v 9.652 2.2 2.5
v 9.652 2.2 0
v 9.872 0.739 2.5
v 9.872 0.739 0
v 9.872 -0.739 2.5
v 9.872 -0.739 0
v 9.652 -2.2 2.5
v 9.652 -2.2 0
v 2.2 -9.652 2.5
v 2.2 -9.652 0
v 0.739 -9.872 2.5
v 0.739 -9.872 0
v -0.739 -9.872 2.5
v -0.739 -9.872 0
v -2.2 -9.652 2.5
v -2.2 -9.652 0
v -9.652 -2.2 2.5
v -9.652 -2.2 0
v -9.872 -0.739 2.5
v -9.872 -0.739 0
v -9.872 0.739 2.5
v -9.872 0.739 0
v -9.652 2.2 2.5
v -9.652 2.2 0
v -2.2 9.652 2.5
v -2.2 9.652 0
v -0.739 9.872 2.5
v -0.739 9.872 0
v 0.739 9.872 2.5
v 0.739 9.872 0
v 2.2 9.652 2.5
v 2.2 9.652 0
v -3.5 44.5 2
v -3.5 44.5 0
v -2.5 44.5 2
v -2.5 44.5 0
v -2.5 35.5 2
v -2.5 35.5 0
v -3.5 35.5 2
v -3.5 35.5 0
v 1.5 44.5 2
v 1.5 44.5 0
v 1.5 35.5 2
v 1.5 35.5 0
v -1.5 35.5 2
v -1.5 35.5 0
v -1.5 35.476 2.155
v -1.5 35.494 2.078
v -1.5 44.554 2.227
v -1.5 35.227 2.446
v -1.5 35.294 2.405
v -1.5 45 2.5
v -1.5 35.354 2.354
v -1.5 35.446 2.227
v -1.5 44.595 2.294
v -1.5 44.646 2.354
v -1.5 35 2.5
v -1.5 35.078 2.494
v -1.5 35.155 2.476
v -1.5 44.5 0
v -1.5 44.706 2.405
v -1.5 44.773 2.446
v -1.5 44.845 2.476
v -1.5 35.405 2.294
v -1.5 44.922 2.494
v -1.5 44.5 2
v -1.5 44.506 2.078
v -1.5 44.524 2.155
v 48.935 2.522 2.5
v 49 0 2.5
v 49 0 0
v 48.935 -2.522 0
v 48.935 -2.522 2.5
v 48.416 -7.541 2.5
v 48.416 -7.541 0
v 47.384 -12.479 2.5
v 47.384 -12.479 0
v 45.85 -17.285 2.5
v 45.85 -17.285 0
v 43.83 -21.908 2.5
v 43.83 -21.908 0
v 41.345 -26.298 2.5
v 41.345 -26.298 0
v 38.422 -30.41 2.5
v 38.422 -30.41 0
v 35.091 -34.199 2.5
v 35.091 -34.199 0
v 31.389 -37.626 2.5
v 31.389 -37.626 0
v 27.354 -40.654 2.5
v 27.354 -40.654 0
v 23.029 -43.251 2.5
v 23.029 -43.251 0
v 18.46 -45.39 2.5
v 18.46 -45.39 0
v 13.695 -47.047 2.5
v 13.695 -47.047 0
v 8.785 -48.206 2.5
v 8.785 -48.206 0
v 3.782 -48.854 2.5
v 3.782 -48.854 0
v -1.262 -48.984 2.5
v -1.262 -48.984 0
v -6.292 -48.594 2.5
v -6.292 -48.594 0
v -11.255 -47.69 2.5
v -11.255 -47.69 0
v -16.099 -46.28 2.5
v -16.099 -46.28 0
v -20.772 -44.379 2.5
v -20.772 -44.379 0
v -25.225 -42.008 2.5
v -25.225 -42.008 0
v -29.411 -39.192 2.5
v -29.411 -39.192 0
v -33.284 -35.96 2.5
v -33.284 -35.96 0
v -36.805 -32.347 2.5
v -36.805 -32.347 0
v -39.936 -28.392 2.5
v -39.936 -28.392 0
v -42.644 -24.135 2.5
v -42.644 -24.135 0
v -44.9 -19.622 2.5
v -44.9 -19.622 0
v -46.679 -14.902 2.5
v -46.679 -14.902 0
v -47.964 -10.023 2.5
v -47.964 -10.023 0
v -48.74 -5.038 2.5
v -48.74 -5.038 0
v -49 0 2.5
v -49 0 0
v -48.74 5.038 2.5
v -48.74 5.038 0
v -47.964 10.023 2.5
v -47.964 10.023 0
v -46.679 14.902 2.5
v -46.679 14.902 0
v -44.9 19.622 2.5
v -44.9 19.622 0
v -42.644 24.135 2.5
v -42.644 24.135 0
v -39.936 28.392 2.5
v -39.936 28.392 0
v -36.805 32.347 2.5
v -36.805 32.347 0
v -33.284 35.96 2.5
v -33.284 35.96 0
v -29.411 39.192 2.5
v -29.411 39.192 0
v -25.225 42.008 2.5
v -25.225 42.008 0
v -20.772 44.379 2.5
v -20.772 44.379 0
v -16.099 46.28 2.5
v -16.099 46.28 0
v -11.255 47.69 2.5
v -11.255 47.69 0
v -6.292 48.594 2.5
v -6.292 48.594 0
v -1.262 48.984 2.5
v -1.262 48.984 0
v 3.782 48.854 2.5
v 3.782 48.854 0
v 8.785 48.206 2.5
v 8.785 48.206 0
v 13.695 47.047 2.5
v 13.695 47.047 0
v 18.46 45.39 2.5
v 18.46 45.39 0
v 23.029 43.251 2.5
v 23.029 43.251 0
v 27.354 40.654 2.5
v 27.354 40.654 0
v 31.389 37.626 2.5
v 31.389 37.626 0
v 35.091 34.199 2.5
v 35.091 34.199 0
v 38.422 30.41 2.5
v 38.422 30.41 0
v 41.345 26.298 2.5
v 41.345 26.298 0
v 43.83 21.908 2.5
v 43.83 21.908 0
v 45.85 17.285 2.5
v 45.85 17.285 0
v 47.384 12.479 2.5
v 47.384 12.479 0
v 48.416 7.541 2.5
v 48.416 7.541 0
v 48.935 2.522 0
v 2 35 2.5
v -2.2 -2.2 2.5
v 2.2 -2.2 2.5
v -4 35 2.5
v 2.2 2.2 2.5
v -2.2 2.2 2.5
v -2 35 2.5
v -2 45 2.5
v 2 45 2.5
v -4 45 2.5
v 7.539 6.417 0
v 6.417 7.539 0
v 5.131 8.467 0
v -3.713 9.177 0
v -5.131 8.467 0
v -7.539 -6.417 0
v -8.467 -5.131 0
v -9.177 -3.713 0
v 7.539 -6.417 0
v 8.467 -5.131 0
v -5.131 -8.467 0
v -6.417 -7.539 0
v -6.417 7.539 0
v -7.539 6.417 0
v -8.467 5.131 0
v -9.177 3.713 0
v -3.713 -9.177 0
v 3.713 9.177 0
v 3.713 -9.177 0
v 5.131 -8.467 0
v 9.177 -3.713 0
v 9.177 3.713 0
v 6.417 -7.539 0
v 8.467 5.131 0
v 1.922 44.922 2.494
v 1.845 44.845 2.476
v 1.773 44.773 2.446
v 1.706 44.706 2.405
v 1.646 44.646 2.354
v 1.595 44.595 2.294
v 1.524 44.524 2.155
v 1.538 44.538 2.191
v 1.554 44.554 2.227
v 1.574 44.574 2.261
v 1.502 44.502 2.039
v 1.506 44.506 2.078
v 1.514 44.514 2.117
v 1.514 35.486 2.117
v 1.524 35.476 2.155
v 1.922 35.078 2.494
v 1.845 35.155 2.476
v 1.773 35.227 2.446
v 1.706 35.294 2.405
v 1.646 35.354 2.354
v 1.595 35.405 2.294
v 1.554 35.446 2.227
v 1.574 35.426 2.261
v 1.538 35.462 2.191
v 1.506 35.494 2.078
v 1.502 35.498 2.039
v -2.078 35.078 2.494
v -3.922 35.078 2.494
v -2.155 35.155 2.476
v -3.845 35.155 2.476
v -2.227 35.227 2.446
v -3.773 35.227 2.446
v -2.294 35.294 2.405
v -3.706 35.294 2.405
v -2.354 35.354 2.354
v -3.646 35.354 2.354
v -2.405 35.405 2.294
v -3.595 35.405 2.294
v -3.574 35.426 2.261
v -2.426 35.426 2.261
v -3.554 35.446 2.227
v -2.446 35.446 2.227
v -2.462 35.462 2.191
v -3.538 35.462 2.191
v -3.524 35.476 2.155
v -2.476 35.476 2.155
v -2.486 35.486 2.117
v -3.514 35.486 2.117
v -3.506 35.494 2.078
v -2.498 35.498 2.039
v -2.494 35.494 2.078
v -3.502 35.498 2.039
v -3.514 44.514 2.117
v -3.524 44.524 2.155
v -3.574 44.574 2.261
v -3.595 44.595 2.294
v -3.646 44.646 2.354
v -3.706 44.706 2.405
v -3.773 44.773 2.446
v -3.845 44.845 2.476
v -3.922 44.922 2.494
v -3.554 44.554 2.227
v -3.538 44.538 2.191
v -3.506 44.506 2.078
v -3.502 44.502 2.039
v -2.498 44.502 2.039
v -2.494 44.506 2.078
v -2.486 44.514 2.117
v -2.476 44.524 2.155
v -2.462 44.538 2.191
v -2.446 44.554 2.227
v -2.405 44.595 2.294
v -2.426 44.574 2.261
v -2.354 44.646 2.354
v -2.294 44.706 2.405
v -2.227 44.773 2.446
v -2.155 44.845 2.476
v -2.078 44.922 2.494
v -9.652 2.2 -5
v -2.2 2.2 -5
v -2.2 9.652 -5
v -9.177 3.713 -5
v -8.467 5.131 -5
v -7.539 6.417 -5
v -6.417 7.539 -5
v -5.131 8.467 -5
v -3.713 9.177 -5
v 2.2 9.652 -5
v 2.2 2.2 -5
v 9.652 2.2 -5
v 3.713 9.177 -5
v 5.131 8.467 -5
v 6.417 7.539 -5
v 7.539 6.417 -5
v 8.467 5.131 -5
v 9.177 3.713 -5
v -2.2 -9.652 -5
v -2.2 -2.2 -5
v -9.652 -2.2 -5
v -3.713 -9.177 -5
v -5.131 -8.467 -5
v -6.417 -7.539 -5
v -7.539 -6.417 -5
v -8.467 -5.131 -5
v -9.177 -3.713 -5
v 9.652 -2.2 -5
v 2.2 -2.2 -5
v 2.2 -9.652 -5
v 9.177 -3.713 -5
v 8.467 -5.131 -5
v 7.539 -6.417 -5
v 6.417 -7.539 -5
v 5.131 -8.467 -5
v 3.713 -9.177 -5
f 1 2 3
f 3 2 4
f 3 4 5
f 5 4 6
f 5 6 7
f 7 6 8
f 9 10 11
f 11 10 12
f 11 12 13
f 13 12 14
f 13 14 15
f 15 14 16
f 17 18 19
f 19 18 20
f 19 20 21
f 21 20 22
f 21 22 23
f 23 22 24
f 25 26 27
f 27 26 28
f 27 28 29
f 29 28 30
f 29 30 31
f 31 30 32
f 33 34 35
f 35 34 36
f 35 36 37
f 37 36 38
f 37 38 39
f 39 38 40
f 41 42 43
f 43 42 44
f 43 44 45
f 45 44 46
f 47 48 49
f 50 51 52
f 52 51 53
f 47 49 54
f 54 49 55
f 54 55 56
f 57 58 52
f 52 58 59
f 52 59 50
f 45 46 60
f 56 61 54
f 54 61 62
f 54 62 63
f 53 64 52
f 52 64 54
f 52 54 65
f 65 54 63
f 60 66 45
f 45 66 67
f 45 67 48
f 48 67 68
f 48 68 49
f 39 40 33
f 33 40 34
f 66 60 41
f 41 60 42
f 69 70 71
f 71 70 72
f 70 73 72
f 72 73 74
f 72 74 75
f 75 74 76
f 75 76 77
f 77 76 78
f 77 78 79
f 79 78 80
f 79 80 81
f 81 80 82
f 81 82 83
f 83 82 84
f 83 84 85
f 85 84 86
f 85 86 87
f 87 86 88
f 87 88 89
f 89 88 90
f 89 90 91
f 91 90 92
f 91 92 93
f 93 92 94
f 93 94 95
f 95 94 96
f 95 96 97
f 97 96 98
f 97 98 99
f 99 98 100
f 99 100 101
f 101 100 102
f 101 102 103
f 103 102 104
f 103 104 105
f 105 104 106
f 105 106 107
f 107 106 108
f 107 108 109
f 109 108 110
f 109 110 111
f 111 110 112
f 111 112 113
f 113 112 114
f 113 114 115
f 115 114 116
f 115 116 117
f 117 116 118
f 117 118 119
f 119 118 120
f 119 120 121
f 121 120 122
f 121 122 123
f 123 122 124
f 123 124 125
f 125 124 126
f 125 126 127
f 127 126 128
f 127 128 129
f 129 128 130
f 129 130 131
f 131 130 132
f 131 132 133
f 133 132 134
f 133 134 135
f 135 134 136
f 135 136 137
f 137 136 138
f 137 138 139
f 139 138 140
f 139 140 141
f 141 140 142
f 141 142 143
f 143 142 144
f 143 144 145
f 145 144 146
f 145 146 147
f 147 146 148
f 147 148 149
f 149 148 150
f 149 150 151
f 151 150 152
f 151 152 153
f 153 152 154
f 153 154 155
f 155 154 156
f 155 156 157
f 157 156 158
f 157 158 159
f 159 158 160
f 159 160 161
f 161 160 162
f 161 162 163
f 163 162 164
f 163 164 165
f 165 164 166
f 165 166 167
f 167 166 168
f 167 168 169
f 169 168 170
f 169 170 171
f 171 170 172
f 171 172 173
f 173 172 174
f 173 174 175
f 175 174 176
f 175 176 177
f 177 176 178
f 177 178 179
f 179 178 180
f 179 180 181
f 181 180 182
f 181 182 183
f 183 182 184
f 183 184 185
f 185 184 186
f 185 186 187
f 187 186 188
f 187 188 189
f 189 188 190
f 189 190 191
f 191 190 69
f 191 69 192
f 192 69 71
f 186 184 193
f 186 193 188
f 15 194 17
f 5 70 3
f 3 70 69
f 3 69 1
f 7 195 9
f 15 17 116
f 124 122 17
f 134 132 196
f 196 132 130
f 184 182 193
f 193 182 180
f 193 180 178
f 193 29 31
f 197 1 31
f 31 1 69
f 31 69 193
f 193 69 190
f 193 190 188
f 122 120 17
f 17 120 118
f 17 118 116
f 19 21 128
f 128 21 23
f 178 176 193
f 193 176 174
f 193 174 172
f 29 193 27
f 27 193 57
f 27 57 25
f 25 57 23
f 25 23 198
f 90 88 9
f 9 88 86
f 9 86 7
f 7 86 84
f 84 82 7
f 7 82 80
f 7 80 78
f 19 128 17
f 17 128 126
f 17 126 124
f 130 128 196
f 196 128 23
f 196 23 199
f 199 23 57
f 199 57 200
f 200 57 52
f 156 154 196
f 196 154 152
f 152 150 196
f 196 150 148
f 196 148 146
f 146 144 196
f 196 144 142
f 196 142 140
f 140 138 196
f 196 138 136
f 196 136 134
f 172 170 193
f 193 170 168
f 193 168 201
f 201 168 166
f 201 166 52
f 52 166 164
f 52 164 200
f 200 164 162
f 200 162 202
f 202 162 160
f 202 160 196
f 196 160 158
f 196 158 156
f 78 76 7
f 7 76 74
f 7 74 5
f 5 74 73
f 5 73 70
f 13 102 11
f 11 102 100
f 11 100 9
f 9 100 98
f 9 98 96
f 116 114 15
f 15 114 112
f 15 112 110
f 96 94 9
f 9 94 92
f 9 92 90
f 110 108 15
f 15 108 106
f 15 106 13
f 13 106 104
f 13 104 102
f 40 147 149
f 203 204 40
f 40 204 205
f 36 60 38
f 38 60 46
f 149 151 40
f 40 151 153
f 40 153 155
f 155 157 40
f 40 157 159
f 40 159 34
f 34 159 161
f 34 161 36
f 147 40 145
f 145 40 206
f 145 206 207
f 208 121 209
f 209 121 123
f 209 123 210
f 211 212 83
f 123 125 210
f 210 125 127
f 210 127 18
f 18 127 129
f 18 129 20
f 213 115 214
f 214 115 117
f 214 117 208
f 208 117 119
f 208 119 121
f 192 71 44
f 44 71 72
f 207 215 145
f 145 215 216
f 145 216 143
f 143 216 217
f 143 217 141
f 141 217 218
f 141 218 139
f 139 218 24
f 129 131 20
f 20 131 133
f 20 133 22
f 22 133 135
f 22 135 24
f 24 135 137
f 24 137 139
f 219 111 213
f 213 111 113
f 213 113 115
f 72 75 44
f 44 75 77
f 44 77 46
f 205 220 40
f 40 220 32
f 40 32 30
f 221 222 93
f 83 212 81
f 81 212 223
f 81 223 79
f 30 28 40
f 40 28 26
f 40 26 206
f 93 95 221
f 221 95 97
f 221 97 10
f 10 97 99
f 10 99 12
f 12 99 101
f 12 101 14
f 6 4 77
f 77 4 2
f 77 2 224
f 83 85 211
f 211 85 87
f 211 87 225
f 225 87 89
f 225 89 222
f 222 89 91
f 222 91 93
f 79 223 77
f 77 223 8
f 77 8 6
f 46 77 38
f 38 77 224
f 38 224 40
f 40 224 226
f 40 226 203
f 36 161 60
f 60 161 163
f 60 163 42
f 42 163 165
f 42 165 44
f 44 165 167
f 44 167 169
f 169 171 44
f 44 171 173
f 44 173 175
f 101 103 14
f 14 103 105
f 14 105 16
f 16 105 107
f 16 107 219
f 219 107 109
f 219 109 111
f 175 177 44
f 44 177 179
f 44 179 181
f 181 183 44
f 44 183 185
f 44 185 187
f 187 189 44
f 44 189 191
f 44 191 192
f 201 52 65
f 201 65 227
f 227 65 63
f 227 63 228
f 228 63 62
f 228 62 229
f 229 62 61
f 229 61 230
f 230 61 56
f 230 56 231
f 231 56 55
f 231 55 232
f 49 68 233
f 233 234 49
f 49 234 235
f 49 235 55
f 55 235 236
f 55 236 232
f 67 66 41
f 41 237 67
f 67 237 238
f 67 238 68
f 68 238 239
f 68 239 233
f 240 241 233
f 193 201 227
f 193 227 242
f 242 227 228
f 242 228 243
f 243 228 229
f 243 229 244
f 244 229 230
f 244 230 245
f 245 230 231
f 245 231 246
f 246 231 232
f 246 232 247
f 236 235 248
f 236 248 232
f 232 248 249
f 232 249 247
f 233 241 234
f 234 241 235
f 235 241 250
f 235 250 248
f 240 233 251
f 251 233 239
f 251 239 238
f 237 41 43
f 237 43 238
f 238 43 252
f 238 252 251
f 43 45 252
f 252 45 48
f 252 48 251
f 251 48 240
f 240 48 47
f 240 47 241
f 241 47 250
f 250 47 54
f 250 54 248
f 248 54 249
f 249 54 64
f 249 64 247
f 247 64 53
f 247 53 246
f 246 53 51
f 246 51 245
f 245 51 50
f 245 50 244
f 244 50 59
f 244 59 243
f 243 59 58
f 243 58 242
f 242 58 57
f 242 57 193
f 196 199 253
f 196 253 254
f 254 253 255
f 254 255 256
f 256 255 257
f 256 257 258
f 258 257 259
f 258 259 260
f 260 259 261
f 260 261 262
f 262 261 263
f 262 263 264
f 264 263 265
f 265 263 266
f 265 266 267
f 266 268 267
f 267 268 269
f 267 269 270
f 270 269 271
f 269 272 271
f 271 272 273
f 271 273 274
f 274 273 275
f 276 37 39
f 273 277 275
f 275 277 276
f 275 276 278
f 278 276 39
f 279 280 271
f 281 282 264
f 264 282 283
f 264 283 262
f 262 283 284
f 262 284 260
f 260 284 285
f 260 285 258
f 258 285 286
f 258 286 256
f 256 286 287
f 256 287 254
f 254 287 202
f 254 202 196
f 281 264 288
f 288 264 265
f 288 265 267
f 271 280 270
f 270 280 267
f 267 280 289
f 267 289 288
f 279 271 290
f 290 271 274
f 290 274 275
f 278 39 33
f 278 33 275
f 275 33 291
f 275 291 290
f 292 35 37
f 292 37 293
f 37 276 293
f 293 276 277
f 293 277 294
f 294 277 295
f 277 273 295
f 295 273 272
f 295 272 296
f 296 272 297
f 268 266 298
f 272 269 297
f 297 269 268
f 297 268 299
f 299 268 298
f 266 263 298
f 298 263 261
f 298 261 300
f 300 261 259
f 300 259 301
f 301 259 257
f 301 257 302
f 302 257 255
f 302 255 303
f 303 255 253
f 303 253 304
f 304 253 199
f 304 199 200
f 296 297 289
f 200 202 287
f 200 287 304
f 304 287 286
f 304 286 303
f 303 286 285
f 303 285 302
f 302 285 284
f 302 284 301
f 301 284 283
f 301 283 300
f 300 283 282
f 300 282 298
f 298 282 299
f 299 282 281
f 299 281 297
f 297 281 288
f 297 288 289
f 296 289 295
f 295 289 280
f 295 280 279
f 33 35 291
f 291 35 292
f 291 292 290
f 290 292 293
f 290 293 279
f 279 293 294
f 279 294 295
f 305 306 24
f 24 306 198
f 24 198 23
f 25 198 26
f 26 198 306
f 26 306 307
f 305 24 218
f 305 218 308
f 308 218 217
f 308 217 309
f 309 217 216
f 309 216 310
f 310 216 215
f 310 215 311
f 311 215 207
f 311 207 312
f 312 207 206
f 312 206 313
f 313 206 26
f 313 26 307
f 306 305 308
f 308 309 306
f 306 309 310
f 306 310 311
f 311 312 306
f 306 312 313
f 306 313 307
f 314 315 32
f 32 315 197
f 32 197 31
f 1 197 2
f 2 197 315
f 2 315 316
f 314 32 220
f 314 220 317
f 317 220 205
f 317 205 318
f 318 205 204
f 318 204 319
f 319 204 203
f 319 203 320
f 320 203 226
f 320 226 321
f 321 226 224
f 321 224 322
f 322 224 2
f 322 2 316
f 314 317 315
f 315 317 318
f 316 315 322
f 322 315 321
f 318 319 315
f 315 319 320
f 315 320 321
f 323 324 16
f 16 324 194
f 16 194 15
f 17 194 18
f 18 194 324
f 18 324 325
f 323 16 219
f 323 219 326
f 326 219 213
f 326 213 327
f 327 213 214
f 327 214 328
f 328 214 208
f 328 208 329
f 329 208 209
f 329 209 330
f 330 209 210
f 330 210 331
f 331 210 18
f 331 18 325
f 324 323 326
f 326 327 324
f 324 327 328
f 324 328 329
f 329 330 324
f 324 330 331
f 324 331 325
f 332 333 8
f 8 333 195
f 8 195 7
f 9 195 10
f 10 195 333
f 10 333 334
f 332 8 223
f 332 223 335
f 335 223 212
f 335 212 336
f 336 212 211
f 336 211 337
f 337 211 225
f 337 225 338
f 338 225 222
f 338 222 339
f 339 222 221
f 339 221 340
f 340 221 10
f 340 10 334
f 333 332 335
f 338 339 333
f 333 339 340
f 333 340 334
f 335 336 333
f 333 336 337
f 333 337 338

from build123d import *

# Parameters (mm, degrees)
SKETCH1_R             = 49
SKETCH1_W             = 1
SKETCH1_H             = 9
BOSS_EXTRUDE1_DEPTH   = 2.5
BOSS_EXTRUDE2_START   = -5
BOSS_EXTRUDE2_DEPTH   = 5
BOSS_EXTRUDE2_2_DEPTH = 5
BOSS_EXTRUDE2_3_DEPTH = 5
BOSS_EXTRUDE2_4_DEPTH = 5
FILLET1_R             = 0.5
BOSS_EXTRUDE4_DEPTH   = 2.5


with BuildPart() as part:
    # Sketch1 → Boss-Extrude1 (new body)
    with BuildSketch(Plane.XY):
        Circle(SKETCH1_R)
        with BuildLine():
            ThreePointArc((0, 9.9), (9.9, 0), (0, -9.9))
            ThreePointArc((0, -9.9), (-9.9, 0), (0, 9.9))
        make_face(mode=Mode.SUBTRACT)
        Polygon((-1.5, 35.5), (-1.5, 44.5), (1.5, 44.5), (1.5, 35.5), (0, 35.5), align=None, mode=Mode.SUBTRACT)
        with Locations((-3, 40)):
            Rectangle(SKETCH1_W, SKETCH1_H, mode=Mode.SUBTRACT)
    extrude(amount=BOSS_EXTRUDE1_DEPTH)

    # Fillet1
    fillet1_edges = [part.edges().sort_by_distance(p)[0] for p in [
        (-3, 44.5, 2.5),
        (-3, 35.5, 2.5),
        (-2.5, 40, 2.5),
        (-3.5, 40, 2.5),
        (0, 44.5, 2.5),
        (1.5, 40, 2.5),
        (0, 35.5, 2.5),
    ]]
    fillet(fillet1_edges, radius=FILLET1_R)



with BuildPart() as body_2:
    # Sketch1<3> → Boss-Extrude2 (new body)
    with BuildSketch(Plane.XY.offset(BOSS_EXTRUDE2_START)):
        with BuildLine():
            ThreePointArc((9.652460826, 2.2), (7.000357134, 7.000357134), (2.2, 9.652460826))
            Line((2.2, 9.652460826), (2.2, 2.2))
            Line((2.2, 2.2), (9.652460826, 2.2))
        make_face()
    extrude(amount=BOSS_EXTRUDE2_DEPTH)


with BuildPart() as body_3:
    # Sketch1<3> → Boss-Extrude2 2 (new body)
    with BuildSketch(Plane.XY.offset(BOSS_EXTRUDE2_START)):
        with BuildLine():
            Line((-2.2, 2.2), (-2.2, 9.652460826))
            ThreePointArc((-2.2, 9.652460826), (-7.000357134, 7.000357134), (-9.652460826, 2.2))
            Line((-9.652460826, 2.2), (-2.2, 2.2))
        make_face()
    extrude(amount=BOSS_EXTRUDE2_2_DEPTH)


with BuildPart() as body_4:
    # Sketch1<3> → Boss-Extrude2 3 (new body)
    with BuildSketch(Plane.XY.offset(BOSS_EXTRUDE2_START)):
        with BuildLine():
            Line((9.652460826, -2.2), (2.2, -2.2))
            Line((2.2, -2.2), (2.2, -9.652460826))
            ThreePointArc((2.2, -9.652460826), (7.000357134, -7.000357134), (9.652460826, -2.2))
        make_face()
    extrude(amount=BOSS_EXTRUDE2_3_DEPTH)


with BuildPart() as body_5:
    # Sketch1<3> → Boss-Extrude2 4 (new body)
    with BuildSketch(Plane.XY.offset(BOSS_EXTRUDE2_START)):
        with BuildLine():
            Line((-2.2, -9.652460826), (-2.2, -2.2))
            Line((-2.2, -2.2), (-9.652460826, -2.2))
            ThreePointArc((-9.652460826, -2.2), (-7.000357134, -7.000357134), (-2.2, -9.652460826))
        make_face()
    extrude(amount=BOSS_EXTRUDE2_4_DEPTH)


with BuildPart() as part_1:
    add(part.part)

    add(body_2.part)  # Boss-Extrude4 merges body 2

    add(body_3.part)  # Boss-Extrude4 merges body 3

    add(body_4.part)  # Boss-Extrude4 merges body 4

    add(body_5.part)  # Boss-Extrude4 merges body 5
    # Sketch3 → Boss-Extrude4 (add)
    with BuildSketch(Plane.XY):
        with BuildLine():
            Line((-2.2, 2.2), (-2.2, 9.652460826))
            ThreePointArc((-2.2, 9.652460826), (-7.000357134, 7.000357134), (-9.652460826, 2.2))
            Line((-9.652460826, 2.2), (-2.2, 2.2))
        make_face()
        with BuildLine():
            Line((-2.2, -2.2), (-9.652460826, -2.2))
            ThreePointArc((-9.652460826, -2.2), (-7.000357134, -7.000357134), (-2.2, -9.652460826))
            Line((-2.2, -9.652460826), (-2.2, -2.2))
        make_face()
        with BuildLine():
            Line((2.2, -2.2), (2.2, -9.652460826))
            ThreePointArc((2.2, -9.652460826), (7.000357134, -7.000357134), (9.652460826, -2.2))
            Line((9.652460826, -2.2), (2.2, -2.2))
        make_face()
        with BuildLine():
            Line((2.2, 2.2), (9.652460826, 2.2))
            ThreePointArc((9.652460826, 2.2), (7.000357134, 7.000357134), (2.2, 9.652460826))
            Line((2.2, 9.652460826), (2.2, 2.2))
        make_face()
    extrude(amount=BOSS_EXTRUDE4_DEPTH)


solid = part_1.part
